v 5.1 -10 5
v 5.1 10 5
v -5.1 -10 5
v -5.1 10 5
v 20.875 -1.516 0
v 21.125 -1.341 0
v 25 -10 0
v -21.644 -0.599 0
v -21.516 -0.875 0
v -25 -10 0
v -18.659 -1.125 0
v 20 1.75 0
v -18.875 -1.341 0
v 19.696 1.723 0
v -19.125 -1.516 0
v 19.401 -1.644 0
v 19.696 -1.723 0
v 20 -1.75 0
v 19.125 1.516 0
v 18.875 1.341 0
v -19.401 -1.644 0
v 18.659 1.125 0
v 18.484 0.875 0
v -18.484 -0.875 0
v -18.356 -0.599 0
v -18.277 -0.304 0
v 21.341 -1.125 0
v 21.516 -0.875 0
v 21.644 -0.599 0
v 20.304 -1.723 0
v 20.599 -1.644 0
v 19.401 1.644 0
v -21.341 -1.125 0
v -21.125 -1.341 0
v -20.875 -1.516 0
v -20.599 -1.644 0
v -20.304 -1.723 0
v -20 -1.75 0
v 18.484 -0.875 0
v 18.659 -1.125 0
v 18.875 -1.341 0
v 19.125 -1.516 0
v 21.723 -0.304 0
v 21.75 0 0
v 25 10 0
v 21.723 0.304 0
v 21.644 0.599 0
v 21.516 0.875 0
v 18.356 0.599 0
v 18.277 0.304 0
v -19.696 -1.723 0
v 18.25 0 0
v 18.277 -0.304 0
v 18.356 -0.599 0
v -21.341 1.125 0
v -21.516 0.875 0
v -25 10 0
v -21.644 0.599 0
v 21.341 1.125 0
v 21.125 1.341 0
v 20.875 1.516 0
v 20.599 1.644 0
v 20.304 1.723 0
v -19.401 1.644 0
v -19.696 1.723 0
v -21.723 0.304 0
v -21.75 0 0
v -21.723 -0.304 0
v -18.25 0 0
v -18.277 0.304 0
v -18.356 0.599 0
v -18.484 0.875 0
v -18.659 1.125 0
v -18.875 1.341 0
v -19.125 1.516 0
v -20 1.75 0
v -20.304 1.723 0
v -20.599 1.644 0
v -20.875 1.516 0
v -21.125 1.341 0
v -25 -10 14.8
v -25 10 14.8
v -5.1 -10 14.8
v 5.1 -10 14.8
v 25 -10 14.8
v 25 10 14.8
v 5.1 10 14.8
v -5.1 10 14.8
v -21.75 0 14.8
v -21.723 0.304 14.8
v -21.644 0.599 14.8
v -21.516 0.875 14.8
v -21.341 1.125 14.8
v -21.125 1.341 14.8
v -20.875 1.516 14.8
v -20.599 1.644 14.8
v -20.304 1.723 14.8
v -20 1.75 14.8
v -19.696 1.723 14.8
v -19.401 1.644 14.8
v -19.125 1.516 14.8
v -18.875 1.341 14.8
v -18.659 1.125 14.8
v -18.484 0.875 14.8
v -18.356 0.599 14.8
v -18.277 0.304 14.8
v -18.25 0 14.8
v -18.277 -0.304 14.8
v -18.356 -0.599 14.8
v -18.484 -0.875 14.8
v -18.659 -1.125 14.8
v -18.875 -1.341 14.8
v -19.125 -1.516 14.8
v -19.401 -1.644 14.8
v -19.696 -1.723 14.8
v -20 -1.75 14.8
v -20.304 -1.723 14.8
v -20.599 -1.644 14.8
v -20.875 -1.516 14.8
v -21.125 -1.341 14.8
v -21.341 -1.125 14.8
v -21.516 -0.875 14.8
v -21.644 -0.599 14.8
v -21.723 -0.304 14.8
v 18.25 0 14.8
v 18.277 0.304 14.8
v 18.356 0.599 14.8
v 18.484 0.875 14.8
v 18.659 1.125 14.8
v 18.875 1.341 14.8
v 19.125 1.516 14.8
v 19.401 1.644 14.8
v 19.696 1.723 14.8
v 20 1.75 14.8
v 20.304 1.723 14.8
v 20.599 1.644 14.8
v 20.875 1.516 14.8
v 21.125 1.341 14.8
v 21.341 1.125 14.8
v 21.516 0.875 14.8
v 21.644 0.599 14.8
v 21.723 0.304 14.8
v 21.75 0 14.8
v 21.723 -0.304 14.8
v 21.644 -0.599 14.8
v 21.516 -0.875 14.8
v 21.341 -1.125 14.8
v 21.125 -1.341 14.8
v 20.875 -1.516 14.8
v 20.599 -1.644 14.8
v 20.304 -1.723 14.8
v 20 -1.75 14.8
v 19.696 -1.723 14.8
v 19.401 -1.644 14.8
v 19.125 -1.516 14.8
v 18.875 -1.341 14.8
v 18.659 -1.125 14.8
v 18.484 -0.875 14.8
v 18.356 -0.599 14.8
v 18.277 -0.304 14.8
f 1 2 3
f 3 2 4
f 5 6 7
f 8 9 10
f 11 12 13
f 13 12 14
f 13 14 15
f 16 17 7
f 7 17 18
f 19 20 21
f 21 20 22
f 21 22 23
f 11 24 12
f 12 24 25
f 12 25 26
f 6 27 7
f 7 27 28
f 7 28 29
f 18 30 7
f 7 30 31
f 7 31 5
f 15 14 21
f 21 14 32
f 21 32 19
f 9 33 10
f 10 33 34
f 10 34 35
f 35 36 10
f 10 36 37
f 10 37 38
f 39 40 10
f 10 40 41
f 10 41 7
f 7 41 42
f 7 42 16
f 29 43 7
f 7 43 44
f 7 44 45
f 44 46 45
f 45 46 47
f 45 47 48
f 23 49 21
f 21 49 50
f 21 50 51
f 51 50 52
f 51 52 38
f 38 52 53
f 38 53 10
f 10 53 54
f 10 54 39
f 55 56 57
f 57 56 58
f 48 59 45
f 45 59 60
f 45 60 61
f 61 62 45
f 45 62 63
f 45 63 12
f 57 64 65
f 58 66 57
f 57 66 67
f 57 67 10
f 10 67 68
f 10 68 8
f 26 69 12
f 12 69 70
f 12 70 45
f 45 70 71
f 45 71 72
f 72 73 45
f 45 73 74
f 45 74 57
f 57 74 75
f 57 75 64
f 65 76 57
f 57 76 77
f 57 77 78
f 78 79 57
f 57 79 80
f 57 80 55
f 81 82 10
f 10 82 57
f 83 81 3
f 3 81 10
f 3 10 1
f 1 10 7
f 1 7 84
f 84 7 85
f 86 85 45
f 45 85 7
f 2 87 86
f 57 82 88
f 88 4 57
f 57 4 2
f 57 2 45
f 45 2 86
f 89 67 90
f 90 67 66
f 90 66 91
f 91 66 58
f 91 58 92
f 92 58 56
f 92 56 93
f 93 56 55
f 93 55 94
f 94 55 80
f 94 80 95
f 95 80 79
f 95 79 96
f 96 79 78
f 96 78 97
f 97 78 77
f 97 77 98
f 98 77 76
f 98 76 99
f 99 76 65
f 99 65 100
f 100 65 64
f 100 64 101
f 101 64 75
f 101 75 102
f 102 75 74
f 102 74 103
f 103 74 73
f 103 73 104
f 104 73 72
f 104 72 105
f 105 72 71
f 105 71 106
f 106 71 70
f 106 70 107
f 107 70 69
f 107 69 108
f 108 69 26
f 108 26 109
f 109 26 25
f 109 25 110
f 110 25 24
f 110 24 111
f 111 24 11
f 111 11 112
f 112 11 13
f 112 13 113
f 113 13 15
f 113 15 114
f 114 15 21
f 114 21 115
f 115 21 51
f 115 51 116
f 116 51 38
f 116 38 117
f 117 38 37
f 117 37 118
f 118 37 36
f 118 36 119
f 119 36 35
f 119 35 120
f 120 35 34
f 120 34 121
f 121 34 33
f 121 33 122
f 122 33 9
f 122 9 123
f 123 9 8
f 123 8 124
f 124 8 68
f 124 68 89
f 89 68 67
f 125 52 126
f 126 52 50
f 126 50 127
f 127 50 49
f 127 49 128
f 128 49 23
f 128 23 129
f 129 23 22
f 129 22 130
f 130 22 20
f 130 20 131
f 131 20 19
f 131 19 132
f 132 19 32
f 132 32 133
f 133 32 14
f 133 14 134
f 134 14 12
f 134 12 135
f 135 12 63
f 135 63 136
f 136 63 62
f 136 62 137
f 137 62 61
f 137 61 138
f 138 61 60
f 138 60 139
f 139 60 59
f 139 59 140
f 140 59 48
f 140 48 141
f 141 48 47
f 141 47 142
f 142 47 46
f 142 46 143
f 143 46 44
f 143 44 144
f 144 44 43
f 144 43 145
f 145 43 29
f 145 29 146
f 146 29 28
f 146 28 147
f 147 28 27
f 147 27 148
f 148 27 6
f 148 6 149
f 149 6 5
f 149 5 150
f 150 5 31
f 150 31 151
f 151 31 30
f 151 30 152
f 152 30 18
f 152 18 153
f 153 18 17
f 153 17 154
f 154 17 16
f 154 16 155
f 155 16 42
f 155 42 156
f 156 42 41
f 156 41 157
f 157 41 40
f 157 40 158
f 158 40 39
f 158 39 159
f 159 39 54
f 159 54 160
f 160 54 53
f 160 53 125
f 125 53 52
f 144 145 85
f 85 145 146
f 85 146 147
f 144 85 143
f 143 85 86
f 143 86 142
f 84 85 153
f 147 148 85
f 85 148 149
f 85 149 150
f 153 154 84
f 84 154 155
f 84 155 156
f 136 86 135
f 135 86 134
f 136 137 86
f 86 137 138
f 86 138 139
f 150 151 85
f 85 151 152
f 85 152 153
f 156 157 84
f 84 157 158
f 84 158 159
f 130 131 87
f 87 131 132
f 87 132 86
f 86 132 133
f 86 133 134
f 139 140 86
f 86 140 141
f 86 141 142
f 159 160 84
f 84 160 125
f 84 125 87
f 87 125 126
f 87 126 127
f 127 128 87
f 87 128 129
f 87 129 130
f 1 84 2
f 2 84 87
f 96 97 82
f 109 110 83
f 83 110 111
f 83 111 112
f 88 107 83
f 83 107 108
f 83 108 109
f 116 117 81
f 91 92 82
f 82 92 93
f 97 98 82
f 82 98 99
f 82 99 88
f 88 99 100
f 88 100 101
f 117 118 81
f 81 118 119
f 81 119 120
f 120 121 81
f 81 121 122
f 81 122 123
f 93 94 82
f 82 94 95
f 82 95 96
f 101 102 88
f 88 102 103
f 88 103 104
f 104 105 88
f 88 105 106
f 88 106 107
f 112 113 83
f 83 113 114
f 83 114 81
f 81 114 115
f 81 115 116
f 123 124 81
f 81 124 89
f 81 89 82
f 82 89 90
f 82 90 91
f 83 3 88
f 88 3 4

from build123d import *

# Parameters (mm, degrees)
SKETCH2_W           = 50
SKETCH2_H           = 20
SKETCH2_R           = 1.75
BOSS_EXTRUDE1_DEPTH = 5
BOSS_EXTRUDE2_DEPTH = 20
SKETCH6_R           = 1.75
CUT_EXTRUDE1_DEPTH  = 15.8


with BuildPart() as part:
    # Sketch2 → Boss-Extrude1 (new body)
    with BuildSketch(Plane.XY):
        Rectangle(SKETCH2_W, SKETCH2_H)
        with Locations((-20, 0)):
            Circle(SKETCH2_R, mode=Mode.SUBTRACT)
        with Locations((20, 0)):
            Circle(SKETCH2_R, mode=Mode.SUBTRACT)
    extrude(amount=BOSS_EXTRUDE1_DEPTH)

    # Sketch5 → Boss-Extrude2 (add)
    with BuildSketch(Plane.XZ.offset(10)):
        with BuildLine():
            Line((-25, 5), (-25, 14.8))
            Line((-25, 14.8), (-5.1, 14.8))
            Line((-5.1, 14.8), (-5.1, 5))
            Line((-5.1, 5), (5.1, 5))
            Line((5.1, 5), (5.1, 14.8))
            Line((5.1, 14.8), (25, 14.8))
            Line((25, 14.8), (25, 5))
            ThreePointArc((25, 5), (0, 0), (-25, 5))
        make_face()
    extrude(amount=-BOSS_EXTRUDE2_DEPTH)

    # Sketch6 → Cut-Extrude1 (cut, through all)
    with BuildSketch(Plane(origin=(0, 0, 0), x_dir=(-1, 0, 0), z_dir=(0, 0, -1))):
        with Locations((20, 0)):
            Circle(SKETCH6_R)
        with Locations((-20, 0)):
            Circle(SKETCH6_R)
    extrude(amount=-CUT_EXTRUDE1_DEPTH, mode=Mode.SUBTRACT)


solid = part.part
